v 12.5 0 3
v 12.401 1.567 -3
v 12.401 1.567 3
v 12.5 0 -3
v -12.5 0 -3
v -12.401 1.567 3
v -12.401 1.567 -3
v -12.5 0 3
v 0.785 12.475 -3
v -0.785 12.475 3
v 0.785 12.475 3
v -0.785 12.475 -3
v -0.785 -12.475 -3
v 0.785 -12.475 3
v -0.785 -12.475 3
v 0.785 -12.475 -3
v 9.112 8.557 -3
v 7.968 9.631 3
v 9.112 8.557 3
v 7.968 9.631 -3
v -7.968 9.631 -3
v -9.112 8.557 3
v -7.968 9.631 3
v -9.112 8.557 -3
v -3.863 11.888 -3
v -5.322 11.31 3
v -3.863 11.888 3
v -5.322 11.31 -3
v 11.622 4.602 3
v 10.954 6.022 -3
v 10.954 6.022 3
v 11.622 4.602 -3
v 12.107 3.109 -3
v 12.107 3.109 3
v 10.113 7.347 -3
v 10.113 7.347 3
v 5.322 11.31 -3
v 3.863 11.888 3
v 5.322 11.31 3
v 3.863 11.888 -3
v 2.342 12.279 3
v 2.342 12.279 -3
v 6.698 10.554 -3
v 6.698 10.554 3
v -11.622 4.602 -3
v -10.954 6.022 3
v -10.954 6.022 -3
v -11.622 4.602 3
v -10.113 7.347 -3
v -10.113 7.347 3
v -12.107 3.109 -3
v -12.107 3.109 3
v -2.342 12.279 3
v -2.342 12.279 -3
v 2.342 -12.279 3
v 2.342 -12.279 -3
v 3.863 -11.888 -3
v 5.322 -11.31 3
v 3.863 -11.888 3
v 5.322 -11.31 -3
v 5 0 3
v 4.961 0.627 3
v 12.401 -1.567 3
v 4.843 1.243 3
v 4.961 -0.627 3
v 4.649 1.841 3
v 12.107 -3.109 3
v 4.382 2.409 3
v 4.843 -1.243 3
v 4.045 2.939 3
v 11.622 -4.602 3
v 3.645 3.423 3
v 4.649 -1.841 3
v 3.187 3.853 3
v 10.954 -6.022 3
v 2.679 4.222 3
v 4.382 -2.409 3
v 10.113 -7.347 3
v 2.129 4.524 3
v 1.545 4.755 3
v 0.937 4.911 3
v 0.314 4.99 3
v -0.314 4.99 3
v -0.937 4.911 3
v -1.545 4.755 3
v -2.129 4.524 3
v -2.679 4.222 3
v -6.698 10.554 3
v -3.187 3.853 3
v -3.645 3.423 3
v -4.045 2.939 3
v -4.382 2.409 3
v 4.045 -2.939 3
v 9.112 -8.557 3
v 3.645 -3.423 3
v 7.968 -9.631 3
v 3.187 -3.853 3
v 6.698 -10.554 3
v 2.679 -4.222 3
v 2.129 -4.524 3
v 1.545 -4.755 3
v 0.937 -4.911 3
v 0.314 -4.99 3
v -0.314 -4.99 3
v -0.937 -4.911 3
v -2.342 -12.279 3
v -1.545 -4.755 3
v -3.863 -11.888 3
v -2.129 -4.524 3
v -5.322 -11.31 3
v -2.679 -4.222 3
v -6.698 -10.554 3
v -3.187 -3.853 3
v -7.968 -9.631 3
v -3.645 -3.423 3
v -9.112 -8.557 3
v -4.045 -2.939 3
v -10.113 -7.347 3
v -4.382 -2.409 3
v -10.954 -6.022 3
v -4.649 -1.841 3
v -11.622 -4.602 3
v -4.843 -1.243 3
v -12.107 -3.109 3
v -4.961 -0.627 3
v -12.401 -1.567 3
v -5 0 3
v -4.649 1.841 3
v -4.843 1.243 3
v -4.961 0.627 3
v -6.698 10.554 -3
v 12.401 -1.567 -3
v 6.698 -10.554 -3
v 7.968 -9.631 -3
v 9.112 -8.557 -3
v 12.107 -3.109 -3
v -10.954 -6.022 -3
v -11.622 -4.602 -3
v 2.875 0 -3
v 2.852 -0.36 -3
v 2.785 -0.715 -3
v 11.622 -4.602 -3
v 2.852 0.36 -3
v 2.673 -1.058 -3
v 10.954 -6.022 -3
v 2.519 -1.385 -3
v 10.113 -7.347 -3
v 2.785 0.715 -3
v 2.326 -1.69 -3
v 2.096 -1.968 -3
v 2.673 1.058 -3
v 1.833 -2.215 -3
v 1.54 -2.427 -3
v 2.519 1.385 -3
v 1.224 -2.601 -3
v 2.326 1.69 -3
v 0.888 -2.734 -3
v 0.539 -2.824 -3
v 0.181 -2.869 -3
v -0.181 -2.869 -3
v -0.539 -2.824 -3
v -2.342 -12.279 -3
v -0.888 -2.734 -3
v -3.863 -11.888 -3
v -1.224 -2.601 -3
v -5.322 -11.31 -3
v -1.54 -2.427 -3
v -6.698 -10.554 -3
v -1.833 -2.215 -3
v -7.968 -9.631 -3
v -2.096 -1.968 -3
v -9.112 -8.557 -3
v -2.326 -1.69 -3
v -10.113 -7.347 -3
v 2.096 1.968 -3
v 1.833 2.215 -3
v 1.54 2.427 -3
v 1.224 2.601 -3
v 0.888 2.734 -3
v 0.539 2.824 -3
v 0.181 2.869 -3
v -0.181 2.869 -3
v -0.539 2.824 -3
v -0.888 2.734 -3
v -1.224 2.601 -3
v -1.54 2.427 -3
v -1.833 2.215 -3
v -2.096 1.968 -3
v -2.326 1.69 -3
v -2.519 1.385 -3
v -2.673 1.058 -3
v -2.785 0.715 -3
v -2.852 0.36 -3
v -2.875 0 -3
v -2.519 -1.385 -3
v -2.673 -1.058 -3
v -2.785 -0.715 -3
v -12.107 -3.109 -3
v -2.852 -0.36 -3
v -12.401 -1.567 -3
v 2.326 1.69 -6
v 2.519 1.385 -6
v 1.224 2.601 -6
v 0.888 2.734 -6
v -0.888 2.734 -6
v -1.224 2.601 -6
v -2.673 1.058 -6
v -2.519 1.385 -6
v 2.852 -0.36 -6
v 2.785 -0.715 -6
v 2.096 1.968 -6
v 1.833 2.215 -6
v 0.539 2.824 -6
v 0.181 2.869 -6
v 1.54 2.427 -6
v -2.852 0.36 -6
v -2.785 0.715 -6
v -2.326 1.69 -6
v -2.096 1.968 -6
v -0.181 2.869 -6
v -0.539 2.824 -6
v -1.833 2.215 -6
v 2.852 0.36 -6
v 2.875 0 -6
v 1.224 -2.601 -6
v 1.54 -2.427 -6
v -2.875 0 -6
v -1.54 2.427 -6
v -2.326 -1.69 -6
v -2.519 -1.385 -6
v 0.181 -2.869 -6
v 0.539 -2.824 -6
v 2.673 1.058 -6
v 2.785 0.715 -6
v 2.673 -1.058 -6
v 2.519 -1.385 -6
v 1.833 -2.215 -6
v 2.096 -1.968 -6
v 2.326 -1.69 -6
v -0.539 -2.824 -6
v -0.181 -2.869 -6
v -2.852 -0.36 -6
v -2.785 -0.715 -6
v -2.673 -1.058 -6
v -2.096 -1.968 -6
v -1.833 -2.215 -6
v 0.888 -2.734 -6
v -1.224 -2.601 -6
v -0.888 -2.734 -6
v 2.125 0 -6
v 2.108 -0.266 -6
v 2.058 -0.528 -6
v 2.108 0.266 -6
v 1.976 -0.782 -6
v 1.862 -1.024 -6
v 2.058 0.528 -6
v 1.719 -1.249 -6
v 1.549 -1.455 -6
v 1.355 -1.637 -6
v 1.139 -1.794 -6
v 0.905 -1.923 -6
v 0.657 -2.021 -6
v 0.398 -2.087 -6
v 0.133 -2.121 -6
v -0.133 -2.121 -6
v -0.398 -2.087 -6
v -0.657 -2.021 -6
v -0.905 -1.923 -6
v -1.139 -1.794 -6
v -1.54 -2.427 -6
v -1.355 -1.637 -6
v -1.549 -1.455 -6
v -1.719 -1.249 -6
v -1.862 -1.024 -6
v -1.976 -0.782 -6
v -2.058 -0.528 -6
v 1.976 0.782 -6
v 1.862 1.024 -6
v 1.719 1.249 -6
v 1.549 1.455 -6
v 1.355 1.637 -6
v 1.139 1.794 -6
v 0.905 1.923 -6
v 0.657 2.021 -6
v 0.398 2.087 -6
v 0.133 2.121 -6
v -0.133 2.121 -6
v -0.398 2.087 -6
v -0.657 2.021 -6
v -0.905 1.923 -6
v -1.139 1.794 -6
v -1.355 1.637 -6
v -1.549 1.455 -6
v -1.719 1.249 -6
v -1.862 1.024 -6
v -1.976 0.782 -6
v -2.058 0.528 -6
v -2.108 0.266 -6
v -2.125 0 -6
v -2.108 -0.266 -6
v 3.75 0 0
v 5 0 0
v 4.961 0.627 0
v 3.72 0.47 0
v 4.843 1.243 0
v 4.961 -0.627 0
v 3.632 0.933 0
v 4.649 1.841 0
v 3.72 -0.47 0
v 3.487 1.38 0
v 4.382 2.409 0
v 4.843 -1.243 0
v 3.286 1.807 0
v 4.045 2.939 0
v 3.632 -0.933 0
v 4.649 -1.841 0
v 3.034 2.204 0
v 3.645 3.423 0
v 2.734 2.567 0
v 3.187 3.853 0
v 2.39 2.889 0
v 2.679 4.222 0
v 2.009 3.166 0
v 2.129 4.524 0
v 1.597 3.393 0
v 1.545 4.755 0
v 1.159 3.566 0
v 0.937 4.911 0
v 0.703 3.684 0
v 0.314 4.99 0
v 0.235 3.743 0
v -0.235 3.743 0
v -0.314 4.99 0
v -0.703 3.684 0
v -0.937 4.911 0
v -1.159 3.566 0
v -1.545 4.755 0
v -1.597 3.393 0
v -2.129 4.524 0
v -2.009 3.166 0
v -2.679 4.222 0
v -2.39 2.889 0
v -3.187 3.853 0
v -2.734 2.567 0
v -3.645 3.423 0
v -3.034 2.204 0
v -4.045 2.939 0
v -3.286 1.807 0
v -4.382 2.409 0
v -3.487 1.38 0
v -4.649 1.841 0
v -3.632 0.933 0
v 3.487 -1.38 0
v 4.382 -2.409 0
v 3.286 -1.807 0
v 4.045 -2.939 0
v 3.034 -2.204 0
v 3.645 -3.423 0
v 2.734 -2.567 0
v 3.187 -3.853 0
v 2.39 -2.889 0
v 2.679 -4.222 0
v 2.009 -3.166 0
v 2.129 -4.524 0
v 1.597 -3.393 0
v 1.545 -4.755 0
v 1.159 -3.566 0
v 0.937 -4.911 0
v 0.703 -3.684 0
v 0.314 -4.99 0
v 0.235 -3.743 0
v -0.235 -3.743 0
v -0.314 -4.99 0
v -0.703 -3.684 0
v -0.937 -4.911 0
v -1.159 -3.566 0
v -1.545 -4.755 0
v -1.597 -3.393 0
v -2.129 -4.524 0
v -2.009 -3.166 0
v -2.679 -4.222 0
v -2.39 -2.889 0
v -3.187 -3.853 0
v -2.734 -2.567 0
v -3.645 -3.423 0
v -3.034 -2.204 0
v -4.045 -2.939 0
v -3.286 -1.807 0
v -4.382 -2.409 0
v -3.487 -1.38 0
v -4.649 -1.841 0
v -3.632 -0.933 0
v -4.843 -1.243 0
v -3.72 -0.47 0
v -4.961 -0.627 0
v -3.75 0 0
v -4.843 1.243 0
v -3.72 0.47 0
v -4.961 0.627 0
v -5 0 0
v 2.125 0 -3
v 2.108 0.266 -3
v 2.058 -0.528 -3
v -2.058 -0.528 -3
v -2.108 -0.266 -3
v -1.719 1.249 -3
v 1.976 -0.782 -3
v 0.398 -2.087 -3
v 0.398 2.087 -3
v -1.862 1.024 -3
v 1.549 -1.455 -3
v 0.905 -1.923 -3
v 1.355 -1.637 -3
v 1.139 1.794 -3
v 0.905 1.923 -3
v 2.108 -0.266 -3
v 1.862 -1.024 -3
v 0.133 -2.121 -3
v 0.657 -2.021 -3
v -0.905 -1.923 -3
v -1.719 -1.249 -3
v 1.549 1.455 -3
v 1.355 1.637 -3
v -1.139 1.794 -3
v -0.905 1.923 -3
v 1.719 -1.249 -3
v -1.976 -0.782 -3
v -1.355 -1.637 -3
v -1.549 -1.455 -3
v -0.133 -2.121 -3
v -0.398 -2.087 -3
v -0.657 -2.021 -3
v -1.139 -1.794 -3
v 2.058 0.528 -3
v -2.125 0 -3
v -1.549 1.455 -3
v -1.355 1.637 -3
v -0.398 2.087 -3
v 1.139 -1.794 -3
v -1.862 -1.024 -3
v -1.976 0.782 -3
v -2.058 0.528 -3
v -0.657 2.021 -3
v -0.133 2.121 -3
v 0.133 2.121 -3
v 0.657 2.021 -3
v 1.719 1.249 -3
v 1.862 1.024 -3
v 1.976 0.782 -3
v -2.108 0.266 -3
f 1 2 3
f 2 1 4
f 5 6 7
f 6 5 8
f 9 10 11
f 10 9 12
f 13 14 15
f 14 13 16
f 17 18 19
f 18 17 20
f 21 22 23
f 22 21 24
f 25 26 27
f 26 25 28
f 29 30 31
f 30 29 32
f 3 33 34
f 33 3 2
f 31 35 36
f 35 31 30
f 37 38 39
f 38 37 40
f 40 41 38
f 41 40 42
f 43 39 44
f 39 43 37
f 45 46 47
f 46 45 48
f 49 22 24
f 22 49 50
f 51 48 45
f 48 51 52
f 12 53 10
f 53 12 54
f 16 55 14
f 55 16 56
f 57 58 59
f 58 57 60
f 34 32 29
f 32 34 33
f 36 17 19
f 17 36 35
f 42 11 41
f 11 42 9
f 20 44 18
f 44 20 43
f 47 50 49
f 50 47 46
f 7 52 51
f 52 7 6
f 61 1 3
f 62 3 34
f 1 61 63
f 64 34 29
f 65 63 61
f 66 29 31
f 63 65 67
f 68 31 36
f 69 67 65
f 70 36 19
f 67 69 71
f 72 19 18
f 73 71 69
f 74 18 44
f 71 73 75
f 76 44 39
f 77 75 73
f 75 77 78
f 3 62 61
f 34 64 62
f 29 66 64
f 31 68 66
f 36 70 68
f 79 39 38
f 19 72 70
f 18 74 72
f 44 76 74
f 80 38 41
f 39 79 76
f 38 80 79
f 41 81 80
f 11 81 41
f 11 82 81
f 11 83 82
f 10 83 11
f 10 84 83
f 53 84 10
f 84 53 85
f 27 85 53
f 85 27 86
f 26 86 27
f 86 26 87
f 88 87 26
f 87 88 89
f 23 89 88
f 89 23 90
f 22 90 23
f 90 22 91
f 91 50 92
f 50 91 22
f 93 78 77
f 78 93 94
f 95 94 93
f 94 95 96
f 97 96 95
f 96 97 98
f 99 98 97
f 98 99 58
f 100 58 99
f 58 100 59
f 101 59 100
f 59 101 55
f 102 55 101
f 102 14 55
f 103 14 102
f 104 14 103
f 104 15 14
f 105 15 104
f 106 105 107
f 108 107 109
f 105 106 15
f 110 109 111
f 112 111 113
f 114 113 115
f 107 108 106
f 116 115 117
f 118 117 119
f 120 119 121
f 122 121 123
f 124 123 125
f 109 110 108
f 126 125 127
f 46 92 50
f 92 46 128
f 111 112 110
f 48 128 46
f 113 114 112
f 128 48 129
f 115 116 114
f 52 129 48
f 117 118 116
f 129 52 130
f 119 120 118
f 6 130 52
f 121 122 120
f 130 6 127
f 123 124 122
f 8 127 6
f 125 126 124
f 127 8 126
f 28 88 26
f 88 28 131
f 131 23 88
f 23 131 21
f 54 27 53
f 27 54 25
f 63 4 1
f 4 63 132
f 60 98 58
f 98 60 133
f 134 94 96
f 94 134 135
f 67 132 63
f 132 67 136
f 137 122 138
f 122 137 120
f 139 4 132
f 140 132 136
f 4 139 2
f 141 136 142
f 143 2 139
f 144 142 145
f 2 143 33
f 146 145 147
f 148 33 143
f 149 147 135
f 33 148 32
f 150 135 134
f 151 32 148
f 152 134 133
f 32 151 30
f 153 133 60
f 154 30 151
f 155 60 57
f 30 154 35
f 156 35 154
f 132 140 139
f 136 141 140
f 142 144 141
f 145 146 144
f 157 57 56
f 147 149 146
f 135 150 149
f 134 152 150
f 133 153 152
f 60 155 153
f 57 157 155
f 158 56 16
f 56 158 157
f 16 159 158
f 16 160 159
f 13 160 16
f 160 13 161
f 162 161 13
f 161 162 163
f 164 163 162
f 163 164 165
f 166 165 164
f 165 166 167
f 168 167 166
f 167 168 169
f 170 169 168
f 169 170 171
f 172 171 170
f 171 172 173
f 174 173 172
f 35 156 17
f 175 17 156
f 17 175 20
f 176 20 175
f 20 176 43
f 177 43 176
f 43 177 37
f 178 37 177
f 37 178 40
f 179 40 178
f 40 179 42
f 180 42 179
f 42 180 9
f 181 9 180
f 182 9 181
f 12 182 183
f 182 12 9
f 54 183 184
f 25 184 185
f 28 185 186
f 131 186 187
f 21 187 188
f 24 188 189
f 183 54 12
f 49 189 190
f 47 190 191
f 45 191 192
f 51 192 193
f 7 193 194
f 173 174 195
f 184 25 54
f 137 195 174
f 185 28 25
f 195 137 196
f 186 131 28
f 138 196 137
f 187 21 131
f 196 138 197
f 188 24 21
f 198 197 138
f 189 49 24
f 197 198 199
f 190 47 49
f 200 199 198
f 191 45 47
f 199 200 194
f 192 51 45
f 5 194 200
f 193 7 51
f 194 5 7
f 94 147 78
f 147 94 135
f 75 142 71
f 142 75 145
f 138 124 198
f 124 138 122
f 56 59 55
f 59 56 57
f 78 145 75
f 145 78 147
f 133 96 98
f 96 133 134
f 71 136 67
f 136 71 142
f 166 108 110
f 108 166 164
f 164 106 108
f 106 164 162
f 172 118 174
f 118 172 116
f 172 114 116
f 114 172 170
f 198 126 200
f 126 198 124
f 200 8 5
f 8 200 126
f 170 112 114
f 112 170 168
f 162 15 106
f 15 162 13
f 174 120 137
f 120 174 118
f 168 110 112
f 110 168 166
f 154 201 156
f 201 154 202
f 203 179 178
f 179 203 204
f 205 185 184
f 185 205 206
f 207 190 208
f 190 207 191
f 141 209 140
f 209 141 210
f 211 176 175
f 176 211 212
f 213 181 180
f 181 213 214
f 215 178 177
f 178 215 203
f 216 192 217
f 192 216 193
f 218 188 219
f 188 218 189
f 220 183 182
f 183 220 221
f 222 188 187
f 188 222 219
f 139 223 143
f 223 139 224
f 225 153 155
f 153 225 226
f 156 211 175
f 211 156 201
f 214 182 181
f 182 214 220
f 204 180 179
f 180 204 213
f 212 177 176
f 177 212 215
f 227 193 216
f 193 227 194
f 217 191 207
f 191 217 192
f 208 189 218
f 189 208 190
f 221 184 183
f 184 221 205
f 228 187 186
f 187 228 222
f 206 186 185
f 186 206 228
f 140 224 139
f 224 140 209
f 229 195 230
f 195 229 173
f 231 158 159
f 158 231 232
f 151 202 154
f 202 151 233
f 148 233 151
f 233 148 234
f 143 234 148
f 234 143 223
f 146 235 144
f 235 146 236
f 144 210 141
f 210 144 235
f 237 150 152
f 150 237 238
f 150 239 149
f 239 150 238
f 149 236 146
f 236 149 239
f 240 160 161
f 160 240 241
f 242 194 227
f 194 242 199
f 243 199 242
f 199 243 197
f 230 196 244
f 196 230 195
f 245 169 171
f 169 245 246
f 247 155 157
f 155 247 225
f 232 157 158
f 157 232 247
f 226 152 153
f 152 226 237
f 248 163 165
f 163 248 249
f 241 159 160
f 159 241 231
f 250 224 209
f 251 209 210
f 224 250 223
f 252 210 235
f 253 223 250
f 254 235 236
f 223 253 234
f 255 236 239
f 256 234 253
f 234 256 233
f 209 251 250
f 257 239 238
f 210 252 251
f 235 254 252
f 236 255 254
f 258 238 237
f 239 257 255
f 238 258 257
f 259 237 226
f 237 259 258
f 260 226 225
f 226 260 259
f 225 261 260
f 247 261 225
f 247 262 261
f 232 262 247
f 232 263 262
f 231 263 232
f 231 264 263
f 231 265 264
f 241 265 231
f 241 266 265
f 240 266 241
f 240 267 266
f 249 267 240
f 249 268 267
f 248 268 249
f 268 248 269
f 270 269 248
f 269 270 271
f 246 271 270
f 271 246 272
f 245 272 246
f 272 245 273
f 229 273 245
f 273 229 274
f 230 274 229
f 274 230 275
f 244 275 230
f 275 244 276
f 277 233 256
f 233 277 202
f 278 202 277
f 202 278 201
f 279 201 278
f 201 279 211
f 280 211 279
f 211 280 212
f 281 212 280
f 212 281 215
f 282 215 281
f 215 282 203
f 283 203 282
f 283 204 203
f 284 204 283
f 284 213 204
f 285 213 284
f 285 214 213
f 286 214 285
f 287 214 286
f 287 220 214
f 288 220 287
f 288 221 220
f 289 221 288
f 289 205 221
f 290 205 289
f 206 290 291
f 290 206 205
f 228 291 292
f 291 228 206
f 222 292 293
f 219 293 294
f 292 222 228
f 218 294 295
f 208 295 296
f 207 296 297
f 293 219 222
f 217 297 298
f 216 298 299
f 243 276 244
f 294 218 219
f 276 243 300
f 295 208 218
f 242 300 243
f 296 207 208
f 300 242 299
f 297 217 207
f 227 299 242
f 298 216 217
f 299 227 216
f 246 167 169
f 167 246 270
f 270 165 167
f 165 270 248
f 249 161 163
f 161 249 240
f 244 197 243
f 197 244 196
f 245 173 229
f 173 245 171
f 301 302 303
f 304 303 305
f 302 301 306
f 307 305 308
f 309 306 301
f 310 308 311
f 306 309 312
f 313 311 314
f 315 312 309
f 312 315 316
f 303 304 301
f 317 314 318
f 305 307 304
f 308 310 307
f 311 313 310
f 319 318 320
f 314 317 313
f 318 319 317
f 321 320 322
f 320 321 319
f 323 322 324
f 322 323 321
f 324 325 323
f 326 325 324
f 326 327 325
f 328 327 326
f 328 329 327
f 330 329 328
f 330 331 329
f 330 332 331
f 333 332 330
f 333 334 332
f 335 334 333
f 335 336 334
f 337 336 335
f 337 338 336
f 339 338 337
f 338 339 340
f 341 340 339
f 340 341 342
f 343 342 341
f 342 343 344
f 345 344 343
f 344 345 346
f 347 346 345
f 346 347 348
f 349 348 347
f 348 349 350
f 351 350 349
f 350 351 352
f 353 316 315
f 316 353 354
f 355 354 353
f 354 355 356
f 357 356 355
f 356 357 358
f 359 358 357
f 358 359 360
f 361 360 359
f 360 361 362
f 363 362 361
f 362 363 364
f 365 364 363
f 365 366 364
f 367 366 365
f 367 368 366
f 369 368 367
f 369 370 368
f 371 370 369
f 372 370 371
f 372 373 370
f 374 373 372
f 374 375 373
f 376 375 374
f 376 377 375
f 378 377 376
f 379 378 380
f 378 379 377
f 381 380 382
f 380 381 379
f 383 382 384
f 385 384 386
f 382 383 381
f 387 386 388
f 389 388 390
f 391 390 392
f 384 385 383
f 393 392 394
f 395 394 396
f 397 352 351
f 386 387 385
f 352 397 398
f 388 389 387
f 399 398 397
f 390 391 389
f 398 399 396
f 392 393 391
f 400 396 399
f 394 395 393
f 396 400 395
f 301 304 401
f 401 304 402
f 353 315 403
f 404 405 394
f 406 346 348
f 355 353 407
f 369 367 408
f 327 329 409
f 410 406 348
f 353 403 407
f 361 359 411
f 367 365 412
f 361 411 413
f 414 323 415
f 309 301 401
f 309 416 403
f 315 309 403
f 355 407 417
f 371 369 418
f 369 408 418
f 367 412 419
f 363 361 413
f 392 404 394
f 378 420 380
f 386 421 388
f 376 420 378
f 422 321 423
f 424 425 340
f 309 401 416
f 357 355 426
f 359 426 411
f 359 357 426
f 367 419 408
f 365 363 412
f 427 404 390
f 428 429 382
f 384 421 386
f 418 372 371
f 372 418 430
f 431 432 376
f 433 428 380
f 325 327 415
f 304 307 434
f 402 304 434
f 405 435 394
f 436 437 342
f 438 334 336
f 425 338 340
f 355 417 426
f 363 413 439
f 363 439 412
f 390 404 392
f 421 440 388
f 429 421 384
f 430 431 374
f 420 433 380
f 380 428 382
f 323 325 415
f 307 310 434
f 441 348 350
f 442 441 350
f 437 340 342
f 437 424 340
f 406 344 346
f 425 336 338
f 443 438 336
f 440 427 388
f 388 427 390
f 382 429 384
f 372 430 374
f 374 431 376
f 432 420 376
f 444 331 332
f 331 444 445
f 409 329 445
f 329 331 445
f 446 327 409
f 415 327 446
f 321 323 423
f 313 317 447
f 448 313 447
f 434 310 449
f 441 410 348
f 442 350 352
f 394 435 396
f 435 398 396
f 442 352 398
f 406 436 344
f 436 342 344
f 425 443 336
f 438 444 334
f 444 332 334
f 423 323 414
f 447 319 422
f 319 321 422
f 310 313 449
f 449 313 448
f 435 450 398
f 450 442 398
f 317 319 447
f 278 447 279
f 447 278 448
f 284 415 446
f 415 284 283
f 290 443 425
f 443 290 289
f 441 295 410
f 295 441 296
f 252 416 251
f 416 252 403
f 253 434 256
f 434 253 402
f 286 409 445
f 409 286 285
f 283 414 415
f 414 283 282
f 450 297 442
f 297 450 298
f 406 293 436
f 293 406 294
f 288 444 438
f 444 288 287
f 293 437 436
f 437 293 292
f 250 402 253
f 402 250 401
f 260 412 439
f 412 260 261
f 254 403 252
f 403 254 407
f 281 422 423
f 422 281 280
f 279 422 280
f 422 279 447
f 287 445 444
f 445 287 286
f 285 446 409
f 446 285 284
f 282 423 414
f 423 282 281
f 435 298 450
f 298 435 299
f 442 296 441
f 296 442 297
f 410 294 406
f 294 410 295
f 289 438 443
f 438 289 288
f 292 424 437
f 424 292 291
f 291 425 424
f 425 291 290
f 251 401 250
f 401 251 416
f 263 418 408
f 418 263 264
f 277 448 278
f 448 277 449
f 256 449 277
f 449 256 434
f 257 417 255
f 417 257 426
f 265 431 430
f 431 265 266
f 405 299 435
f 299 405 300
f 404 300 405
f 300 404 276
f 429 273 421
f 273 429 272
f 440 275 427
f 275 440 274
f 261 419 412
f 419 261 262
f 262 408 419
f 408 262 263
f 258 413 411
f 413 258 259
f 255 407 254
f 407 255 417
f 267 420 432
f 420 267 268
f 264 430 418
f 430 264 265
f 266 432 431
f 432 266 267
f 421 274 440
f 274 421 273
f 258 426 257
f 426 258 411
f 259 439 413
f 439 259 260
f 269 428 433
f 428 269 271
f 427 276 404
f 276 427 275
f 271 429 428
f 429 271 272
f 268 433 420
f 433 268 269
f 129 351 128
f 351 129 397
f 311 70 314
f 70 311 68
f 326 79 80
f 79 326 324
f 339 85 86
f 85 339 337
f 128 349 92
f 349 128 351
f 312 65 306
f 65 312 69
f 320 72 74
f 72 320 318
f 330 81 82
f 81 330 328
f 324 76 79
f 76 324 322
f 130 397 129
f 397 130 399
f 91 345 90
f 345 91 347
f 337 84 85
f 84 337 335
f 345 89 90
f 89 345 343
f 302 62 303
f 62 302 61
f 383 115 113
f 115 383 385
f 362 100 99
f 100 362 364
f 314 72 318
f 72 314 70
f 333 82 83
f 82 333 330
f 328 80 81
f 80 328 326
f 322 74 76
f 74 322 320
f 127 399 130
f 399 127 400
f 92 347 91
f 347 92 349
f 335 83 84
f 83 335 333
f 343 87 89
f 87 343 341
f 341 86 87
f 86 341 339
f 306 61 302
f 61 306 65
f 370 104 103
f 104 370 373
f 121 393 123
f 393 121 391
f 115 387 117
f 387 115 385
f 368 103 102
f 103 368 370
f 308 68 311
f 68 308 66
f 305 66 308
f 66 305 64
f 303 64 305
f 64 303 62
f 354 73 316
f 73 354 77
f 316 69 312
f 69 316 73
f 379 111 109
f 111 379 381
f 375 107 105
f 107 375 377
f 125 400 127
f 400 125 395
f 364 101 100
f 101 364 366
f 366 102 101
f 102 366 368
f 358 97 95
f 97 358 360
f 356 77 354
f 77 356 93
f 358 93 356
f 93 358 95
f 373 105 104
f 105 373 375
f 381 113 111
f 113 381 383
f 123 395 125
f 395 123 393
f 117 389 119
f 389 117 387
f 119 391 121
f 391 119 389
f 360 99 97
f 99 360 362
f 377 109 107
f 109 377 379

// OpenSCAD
$fn = 50;

difference() {
	union() {
		translate(v = [0, 0, -3.0]) {
			cylinder(h = 6, r = 12.5);
		}
		#translate(v = [0, 0, -6.0]) {
			cylinder(h = 6, r = 2.875);
		}
	}
	union() {
		translate(v = [0, 0, 0]) {
			rotate(a = [0, 0, 0]) {
				difference() {
					union() {
						translate(v = [0, 0, -6.0]) {
							cylinder(h = 6, r = 2.0);
						}
						translate(v = [0, 0, -3]) {
							cylinder(h = 3, r1 = 2.125, r2 = 3.75);
						}
						translate(v = [0, 0, -6.0]) {
							cylinder(h = 6, r = 2.125);
						}
						translate(v = [0, 0, -6.0]) {
							cylinder(h = 6, r = 2.0);
						}
					}
					union();
				}
			}
		}
		#cylinder(h = 3, r = 5.0);
	}
}
